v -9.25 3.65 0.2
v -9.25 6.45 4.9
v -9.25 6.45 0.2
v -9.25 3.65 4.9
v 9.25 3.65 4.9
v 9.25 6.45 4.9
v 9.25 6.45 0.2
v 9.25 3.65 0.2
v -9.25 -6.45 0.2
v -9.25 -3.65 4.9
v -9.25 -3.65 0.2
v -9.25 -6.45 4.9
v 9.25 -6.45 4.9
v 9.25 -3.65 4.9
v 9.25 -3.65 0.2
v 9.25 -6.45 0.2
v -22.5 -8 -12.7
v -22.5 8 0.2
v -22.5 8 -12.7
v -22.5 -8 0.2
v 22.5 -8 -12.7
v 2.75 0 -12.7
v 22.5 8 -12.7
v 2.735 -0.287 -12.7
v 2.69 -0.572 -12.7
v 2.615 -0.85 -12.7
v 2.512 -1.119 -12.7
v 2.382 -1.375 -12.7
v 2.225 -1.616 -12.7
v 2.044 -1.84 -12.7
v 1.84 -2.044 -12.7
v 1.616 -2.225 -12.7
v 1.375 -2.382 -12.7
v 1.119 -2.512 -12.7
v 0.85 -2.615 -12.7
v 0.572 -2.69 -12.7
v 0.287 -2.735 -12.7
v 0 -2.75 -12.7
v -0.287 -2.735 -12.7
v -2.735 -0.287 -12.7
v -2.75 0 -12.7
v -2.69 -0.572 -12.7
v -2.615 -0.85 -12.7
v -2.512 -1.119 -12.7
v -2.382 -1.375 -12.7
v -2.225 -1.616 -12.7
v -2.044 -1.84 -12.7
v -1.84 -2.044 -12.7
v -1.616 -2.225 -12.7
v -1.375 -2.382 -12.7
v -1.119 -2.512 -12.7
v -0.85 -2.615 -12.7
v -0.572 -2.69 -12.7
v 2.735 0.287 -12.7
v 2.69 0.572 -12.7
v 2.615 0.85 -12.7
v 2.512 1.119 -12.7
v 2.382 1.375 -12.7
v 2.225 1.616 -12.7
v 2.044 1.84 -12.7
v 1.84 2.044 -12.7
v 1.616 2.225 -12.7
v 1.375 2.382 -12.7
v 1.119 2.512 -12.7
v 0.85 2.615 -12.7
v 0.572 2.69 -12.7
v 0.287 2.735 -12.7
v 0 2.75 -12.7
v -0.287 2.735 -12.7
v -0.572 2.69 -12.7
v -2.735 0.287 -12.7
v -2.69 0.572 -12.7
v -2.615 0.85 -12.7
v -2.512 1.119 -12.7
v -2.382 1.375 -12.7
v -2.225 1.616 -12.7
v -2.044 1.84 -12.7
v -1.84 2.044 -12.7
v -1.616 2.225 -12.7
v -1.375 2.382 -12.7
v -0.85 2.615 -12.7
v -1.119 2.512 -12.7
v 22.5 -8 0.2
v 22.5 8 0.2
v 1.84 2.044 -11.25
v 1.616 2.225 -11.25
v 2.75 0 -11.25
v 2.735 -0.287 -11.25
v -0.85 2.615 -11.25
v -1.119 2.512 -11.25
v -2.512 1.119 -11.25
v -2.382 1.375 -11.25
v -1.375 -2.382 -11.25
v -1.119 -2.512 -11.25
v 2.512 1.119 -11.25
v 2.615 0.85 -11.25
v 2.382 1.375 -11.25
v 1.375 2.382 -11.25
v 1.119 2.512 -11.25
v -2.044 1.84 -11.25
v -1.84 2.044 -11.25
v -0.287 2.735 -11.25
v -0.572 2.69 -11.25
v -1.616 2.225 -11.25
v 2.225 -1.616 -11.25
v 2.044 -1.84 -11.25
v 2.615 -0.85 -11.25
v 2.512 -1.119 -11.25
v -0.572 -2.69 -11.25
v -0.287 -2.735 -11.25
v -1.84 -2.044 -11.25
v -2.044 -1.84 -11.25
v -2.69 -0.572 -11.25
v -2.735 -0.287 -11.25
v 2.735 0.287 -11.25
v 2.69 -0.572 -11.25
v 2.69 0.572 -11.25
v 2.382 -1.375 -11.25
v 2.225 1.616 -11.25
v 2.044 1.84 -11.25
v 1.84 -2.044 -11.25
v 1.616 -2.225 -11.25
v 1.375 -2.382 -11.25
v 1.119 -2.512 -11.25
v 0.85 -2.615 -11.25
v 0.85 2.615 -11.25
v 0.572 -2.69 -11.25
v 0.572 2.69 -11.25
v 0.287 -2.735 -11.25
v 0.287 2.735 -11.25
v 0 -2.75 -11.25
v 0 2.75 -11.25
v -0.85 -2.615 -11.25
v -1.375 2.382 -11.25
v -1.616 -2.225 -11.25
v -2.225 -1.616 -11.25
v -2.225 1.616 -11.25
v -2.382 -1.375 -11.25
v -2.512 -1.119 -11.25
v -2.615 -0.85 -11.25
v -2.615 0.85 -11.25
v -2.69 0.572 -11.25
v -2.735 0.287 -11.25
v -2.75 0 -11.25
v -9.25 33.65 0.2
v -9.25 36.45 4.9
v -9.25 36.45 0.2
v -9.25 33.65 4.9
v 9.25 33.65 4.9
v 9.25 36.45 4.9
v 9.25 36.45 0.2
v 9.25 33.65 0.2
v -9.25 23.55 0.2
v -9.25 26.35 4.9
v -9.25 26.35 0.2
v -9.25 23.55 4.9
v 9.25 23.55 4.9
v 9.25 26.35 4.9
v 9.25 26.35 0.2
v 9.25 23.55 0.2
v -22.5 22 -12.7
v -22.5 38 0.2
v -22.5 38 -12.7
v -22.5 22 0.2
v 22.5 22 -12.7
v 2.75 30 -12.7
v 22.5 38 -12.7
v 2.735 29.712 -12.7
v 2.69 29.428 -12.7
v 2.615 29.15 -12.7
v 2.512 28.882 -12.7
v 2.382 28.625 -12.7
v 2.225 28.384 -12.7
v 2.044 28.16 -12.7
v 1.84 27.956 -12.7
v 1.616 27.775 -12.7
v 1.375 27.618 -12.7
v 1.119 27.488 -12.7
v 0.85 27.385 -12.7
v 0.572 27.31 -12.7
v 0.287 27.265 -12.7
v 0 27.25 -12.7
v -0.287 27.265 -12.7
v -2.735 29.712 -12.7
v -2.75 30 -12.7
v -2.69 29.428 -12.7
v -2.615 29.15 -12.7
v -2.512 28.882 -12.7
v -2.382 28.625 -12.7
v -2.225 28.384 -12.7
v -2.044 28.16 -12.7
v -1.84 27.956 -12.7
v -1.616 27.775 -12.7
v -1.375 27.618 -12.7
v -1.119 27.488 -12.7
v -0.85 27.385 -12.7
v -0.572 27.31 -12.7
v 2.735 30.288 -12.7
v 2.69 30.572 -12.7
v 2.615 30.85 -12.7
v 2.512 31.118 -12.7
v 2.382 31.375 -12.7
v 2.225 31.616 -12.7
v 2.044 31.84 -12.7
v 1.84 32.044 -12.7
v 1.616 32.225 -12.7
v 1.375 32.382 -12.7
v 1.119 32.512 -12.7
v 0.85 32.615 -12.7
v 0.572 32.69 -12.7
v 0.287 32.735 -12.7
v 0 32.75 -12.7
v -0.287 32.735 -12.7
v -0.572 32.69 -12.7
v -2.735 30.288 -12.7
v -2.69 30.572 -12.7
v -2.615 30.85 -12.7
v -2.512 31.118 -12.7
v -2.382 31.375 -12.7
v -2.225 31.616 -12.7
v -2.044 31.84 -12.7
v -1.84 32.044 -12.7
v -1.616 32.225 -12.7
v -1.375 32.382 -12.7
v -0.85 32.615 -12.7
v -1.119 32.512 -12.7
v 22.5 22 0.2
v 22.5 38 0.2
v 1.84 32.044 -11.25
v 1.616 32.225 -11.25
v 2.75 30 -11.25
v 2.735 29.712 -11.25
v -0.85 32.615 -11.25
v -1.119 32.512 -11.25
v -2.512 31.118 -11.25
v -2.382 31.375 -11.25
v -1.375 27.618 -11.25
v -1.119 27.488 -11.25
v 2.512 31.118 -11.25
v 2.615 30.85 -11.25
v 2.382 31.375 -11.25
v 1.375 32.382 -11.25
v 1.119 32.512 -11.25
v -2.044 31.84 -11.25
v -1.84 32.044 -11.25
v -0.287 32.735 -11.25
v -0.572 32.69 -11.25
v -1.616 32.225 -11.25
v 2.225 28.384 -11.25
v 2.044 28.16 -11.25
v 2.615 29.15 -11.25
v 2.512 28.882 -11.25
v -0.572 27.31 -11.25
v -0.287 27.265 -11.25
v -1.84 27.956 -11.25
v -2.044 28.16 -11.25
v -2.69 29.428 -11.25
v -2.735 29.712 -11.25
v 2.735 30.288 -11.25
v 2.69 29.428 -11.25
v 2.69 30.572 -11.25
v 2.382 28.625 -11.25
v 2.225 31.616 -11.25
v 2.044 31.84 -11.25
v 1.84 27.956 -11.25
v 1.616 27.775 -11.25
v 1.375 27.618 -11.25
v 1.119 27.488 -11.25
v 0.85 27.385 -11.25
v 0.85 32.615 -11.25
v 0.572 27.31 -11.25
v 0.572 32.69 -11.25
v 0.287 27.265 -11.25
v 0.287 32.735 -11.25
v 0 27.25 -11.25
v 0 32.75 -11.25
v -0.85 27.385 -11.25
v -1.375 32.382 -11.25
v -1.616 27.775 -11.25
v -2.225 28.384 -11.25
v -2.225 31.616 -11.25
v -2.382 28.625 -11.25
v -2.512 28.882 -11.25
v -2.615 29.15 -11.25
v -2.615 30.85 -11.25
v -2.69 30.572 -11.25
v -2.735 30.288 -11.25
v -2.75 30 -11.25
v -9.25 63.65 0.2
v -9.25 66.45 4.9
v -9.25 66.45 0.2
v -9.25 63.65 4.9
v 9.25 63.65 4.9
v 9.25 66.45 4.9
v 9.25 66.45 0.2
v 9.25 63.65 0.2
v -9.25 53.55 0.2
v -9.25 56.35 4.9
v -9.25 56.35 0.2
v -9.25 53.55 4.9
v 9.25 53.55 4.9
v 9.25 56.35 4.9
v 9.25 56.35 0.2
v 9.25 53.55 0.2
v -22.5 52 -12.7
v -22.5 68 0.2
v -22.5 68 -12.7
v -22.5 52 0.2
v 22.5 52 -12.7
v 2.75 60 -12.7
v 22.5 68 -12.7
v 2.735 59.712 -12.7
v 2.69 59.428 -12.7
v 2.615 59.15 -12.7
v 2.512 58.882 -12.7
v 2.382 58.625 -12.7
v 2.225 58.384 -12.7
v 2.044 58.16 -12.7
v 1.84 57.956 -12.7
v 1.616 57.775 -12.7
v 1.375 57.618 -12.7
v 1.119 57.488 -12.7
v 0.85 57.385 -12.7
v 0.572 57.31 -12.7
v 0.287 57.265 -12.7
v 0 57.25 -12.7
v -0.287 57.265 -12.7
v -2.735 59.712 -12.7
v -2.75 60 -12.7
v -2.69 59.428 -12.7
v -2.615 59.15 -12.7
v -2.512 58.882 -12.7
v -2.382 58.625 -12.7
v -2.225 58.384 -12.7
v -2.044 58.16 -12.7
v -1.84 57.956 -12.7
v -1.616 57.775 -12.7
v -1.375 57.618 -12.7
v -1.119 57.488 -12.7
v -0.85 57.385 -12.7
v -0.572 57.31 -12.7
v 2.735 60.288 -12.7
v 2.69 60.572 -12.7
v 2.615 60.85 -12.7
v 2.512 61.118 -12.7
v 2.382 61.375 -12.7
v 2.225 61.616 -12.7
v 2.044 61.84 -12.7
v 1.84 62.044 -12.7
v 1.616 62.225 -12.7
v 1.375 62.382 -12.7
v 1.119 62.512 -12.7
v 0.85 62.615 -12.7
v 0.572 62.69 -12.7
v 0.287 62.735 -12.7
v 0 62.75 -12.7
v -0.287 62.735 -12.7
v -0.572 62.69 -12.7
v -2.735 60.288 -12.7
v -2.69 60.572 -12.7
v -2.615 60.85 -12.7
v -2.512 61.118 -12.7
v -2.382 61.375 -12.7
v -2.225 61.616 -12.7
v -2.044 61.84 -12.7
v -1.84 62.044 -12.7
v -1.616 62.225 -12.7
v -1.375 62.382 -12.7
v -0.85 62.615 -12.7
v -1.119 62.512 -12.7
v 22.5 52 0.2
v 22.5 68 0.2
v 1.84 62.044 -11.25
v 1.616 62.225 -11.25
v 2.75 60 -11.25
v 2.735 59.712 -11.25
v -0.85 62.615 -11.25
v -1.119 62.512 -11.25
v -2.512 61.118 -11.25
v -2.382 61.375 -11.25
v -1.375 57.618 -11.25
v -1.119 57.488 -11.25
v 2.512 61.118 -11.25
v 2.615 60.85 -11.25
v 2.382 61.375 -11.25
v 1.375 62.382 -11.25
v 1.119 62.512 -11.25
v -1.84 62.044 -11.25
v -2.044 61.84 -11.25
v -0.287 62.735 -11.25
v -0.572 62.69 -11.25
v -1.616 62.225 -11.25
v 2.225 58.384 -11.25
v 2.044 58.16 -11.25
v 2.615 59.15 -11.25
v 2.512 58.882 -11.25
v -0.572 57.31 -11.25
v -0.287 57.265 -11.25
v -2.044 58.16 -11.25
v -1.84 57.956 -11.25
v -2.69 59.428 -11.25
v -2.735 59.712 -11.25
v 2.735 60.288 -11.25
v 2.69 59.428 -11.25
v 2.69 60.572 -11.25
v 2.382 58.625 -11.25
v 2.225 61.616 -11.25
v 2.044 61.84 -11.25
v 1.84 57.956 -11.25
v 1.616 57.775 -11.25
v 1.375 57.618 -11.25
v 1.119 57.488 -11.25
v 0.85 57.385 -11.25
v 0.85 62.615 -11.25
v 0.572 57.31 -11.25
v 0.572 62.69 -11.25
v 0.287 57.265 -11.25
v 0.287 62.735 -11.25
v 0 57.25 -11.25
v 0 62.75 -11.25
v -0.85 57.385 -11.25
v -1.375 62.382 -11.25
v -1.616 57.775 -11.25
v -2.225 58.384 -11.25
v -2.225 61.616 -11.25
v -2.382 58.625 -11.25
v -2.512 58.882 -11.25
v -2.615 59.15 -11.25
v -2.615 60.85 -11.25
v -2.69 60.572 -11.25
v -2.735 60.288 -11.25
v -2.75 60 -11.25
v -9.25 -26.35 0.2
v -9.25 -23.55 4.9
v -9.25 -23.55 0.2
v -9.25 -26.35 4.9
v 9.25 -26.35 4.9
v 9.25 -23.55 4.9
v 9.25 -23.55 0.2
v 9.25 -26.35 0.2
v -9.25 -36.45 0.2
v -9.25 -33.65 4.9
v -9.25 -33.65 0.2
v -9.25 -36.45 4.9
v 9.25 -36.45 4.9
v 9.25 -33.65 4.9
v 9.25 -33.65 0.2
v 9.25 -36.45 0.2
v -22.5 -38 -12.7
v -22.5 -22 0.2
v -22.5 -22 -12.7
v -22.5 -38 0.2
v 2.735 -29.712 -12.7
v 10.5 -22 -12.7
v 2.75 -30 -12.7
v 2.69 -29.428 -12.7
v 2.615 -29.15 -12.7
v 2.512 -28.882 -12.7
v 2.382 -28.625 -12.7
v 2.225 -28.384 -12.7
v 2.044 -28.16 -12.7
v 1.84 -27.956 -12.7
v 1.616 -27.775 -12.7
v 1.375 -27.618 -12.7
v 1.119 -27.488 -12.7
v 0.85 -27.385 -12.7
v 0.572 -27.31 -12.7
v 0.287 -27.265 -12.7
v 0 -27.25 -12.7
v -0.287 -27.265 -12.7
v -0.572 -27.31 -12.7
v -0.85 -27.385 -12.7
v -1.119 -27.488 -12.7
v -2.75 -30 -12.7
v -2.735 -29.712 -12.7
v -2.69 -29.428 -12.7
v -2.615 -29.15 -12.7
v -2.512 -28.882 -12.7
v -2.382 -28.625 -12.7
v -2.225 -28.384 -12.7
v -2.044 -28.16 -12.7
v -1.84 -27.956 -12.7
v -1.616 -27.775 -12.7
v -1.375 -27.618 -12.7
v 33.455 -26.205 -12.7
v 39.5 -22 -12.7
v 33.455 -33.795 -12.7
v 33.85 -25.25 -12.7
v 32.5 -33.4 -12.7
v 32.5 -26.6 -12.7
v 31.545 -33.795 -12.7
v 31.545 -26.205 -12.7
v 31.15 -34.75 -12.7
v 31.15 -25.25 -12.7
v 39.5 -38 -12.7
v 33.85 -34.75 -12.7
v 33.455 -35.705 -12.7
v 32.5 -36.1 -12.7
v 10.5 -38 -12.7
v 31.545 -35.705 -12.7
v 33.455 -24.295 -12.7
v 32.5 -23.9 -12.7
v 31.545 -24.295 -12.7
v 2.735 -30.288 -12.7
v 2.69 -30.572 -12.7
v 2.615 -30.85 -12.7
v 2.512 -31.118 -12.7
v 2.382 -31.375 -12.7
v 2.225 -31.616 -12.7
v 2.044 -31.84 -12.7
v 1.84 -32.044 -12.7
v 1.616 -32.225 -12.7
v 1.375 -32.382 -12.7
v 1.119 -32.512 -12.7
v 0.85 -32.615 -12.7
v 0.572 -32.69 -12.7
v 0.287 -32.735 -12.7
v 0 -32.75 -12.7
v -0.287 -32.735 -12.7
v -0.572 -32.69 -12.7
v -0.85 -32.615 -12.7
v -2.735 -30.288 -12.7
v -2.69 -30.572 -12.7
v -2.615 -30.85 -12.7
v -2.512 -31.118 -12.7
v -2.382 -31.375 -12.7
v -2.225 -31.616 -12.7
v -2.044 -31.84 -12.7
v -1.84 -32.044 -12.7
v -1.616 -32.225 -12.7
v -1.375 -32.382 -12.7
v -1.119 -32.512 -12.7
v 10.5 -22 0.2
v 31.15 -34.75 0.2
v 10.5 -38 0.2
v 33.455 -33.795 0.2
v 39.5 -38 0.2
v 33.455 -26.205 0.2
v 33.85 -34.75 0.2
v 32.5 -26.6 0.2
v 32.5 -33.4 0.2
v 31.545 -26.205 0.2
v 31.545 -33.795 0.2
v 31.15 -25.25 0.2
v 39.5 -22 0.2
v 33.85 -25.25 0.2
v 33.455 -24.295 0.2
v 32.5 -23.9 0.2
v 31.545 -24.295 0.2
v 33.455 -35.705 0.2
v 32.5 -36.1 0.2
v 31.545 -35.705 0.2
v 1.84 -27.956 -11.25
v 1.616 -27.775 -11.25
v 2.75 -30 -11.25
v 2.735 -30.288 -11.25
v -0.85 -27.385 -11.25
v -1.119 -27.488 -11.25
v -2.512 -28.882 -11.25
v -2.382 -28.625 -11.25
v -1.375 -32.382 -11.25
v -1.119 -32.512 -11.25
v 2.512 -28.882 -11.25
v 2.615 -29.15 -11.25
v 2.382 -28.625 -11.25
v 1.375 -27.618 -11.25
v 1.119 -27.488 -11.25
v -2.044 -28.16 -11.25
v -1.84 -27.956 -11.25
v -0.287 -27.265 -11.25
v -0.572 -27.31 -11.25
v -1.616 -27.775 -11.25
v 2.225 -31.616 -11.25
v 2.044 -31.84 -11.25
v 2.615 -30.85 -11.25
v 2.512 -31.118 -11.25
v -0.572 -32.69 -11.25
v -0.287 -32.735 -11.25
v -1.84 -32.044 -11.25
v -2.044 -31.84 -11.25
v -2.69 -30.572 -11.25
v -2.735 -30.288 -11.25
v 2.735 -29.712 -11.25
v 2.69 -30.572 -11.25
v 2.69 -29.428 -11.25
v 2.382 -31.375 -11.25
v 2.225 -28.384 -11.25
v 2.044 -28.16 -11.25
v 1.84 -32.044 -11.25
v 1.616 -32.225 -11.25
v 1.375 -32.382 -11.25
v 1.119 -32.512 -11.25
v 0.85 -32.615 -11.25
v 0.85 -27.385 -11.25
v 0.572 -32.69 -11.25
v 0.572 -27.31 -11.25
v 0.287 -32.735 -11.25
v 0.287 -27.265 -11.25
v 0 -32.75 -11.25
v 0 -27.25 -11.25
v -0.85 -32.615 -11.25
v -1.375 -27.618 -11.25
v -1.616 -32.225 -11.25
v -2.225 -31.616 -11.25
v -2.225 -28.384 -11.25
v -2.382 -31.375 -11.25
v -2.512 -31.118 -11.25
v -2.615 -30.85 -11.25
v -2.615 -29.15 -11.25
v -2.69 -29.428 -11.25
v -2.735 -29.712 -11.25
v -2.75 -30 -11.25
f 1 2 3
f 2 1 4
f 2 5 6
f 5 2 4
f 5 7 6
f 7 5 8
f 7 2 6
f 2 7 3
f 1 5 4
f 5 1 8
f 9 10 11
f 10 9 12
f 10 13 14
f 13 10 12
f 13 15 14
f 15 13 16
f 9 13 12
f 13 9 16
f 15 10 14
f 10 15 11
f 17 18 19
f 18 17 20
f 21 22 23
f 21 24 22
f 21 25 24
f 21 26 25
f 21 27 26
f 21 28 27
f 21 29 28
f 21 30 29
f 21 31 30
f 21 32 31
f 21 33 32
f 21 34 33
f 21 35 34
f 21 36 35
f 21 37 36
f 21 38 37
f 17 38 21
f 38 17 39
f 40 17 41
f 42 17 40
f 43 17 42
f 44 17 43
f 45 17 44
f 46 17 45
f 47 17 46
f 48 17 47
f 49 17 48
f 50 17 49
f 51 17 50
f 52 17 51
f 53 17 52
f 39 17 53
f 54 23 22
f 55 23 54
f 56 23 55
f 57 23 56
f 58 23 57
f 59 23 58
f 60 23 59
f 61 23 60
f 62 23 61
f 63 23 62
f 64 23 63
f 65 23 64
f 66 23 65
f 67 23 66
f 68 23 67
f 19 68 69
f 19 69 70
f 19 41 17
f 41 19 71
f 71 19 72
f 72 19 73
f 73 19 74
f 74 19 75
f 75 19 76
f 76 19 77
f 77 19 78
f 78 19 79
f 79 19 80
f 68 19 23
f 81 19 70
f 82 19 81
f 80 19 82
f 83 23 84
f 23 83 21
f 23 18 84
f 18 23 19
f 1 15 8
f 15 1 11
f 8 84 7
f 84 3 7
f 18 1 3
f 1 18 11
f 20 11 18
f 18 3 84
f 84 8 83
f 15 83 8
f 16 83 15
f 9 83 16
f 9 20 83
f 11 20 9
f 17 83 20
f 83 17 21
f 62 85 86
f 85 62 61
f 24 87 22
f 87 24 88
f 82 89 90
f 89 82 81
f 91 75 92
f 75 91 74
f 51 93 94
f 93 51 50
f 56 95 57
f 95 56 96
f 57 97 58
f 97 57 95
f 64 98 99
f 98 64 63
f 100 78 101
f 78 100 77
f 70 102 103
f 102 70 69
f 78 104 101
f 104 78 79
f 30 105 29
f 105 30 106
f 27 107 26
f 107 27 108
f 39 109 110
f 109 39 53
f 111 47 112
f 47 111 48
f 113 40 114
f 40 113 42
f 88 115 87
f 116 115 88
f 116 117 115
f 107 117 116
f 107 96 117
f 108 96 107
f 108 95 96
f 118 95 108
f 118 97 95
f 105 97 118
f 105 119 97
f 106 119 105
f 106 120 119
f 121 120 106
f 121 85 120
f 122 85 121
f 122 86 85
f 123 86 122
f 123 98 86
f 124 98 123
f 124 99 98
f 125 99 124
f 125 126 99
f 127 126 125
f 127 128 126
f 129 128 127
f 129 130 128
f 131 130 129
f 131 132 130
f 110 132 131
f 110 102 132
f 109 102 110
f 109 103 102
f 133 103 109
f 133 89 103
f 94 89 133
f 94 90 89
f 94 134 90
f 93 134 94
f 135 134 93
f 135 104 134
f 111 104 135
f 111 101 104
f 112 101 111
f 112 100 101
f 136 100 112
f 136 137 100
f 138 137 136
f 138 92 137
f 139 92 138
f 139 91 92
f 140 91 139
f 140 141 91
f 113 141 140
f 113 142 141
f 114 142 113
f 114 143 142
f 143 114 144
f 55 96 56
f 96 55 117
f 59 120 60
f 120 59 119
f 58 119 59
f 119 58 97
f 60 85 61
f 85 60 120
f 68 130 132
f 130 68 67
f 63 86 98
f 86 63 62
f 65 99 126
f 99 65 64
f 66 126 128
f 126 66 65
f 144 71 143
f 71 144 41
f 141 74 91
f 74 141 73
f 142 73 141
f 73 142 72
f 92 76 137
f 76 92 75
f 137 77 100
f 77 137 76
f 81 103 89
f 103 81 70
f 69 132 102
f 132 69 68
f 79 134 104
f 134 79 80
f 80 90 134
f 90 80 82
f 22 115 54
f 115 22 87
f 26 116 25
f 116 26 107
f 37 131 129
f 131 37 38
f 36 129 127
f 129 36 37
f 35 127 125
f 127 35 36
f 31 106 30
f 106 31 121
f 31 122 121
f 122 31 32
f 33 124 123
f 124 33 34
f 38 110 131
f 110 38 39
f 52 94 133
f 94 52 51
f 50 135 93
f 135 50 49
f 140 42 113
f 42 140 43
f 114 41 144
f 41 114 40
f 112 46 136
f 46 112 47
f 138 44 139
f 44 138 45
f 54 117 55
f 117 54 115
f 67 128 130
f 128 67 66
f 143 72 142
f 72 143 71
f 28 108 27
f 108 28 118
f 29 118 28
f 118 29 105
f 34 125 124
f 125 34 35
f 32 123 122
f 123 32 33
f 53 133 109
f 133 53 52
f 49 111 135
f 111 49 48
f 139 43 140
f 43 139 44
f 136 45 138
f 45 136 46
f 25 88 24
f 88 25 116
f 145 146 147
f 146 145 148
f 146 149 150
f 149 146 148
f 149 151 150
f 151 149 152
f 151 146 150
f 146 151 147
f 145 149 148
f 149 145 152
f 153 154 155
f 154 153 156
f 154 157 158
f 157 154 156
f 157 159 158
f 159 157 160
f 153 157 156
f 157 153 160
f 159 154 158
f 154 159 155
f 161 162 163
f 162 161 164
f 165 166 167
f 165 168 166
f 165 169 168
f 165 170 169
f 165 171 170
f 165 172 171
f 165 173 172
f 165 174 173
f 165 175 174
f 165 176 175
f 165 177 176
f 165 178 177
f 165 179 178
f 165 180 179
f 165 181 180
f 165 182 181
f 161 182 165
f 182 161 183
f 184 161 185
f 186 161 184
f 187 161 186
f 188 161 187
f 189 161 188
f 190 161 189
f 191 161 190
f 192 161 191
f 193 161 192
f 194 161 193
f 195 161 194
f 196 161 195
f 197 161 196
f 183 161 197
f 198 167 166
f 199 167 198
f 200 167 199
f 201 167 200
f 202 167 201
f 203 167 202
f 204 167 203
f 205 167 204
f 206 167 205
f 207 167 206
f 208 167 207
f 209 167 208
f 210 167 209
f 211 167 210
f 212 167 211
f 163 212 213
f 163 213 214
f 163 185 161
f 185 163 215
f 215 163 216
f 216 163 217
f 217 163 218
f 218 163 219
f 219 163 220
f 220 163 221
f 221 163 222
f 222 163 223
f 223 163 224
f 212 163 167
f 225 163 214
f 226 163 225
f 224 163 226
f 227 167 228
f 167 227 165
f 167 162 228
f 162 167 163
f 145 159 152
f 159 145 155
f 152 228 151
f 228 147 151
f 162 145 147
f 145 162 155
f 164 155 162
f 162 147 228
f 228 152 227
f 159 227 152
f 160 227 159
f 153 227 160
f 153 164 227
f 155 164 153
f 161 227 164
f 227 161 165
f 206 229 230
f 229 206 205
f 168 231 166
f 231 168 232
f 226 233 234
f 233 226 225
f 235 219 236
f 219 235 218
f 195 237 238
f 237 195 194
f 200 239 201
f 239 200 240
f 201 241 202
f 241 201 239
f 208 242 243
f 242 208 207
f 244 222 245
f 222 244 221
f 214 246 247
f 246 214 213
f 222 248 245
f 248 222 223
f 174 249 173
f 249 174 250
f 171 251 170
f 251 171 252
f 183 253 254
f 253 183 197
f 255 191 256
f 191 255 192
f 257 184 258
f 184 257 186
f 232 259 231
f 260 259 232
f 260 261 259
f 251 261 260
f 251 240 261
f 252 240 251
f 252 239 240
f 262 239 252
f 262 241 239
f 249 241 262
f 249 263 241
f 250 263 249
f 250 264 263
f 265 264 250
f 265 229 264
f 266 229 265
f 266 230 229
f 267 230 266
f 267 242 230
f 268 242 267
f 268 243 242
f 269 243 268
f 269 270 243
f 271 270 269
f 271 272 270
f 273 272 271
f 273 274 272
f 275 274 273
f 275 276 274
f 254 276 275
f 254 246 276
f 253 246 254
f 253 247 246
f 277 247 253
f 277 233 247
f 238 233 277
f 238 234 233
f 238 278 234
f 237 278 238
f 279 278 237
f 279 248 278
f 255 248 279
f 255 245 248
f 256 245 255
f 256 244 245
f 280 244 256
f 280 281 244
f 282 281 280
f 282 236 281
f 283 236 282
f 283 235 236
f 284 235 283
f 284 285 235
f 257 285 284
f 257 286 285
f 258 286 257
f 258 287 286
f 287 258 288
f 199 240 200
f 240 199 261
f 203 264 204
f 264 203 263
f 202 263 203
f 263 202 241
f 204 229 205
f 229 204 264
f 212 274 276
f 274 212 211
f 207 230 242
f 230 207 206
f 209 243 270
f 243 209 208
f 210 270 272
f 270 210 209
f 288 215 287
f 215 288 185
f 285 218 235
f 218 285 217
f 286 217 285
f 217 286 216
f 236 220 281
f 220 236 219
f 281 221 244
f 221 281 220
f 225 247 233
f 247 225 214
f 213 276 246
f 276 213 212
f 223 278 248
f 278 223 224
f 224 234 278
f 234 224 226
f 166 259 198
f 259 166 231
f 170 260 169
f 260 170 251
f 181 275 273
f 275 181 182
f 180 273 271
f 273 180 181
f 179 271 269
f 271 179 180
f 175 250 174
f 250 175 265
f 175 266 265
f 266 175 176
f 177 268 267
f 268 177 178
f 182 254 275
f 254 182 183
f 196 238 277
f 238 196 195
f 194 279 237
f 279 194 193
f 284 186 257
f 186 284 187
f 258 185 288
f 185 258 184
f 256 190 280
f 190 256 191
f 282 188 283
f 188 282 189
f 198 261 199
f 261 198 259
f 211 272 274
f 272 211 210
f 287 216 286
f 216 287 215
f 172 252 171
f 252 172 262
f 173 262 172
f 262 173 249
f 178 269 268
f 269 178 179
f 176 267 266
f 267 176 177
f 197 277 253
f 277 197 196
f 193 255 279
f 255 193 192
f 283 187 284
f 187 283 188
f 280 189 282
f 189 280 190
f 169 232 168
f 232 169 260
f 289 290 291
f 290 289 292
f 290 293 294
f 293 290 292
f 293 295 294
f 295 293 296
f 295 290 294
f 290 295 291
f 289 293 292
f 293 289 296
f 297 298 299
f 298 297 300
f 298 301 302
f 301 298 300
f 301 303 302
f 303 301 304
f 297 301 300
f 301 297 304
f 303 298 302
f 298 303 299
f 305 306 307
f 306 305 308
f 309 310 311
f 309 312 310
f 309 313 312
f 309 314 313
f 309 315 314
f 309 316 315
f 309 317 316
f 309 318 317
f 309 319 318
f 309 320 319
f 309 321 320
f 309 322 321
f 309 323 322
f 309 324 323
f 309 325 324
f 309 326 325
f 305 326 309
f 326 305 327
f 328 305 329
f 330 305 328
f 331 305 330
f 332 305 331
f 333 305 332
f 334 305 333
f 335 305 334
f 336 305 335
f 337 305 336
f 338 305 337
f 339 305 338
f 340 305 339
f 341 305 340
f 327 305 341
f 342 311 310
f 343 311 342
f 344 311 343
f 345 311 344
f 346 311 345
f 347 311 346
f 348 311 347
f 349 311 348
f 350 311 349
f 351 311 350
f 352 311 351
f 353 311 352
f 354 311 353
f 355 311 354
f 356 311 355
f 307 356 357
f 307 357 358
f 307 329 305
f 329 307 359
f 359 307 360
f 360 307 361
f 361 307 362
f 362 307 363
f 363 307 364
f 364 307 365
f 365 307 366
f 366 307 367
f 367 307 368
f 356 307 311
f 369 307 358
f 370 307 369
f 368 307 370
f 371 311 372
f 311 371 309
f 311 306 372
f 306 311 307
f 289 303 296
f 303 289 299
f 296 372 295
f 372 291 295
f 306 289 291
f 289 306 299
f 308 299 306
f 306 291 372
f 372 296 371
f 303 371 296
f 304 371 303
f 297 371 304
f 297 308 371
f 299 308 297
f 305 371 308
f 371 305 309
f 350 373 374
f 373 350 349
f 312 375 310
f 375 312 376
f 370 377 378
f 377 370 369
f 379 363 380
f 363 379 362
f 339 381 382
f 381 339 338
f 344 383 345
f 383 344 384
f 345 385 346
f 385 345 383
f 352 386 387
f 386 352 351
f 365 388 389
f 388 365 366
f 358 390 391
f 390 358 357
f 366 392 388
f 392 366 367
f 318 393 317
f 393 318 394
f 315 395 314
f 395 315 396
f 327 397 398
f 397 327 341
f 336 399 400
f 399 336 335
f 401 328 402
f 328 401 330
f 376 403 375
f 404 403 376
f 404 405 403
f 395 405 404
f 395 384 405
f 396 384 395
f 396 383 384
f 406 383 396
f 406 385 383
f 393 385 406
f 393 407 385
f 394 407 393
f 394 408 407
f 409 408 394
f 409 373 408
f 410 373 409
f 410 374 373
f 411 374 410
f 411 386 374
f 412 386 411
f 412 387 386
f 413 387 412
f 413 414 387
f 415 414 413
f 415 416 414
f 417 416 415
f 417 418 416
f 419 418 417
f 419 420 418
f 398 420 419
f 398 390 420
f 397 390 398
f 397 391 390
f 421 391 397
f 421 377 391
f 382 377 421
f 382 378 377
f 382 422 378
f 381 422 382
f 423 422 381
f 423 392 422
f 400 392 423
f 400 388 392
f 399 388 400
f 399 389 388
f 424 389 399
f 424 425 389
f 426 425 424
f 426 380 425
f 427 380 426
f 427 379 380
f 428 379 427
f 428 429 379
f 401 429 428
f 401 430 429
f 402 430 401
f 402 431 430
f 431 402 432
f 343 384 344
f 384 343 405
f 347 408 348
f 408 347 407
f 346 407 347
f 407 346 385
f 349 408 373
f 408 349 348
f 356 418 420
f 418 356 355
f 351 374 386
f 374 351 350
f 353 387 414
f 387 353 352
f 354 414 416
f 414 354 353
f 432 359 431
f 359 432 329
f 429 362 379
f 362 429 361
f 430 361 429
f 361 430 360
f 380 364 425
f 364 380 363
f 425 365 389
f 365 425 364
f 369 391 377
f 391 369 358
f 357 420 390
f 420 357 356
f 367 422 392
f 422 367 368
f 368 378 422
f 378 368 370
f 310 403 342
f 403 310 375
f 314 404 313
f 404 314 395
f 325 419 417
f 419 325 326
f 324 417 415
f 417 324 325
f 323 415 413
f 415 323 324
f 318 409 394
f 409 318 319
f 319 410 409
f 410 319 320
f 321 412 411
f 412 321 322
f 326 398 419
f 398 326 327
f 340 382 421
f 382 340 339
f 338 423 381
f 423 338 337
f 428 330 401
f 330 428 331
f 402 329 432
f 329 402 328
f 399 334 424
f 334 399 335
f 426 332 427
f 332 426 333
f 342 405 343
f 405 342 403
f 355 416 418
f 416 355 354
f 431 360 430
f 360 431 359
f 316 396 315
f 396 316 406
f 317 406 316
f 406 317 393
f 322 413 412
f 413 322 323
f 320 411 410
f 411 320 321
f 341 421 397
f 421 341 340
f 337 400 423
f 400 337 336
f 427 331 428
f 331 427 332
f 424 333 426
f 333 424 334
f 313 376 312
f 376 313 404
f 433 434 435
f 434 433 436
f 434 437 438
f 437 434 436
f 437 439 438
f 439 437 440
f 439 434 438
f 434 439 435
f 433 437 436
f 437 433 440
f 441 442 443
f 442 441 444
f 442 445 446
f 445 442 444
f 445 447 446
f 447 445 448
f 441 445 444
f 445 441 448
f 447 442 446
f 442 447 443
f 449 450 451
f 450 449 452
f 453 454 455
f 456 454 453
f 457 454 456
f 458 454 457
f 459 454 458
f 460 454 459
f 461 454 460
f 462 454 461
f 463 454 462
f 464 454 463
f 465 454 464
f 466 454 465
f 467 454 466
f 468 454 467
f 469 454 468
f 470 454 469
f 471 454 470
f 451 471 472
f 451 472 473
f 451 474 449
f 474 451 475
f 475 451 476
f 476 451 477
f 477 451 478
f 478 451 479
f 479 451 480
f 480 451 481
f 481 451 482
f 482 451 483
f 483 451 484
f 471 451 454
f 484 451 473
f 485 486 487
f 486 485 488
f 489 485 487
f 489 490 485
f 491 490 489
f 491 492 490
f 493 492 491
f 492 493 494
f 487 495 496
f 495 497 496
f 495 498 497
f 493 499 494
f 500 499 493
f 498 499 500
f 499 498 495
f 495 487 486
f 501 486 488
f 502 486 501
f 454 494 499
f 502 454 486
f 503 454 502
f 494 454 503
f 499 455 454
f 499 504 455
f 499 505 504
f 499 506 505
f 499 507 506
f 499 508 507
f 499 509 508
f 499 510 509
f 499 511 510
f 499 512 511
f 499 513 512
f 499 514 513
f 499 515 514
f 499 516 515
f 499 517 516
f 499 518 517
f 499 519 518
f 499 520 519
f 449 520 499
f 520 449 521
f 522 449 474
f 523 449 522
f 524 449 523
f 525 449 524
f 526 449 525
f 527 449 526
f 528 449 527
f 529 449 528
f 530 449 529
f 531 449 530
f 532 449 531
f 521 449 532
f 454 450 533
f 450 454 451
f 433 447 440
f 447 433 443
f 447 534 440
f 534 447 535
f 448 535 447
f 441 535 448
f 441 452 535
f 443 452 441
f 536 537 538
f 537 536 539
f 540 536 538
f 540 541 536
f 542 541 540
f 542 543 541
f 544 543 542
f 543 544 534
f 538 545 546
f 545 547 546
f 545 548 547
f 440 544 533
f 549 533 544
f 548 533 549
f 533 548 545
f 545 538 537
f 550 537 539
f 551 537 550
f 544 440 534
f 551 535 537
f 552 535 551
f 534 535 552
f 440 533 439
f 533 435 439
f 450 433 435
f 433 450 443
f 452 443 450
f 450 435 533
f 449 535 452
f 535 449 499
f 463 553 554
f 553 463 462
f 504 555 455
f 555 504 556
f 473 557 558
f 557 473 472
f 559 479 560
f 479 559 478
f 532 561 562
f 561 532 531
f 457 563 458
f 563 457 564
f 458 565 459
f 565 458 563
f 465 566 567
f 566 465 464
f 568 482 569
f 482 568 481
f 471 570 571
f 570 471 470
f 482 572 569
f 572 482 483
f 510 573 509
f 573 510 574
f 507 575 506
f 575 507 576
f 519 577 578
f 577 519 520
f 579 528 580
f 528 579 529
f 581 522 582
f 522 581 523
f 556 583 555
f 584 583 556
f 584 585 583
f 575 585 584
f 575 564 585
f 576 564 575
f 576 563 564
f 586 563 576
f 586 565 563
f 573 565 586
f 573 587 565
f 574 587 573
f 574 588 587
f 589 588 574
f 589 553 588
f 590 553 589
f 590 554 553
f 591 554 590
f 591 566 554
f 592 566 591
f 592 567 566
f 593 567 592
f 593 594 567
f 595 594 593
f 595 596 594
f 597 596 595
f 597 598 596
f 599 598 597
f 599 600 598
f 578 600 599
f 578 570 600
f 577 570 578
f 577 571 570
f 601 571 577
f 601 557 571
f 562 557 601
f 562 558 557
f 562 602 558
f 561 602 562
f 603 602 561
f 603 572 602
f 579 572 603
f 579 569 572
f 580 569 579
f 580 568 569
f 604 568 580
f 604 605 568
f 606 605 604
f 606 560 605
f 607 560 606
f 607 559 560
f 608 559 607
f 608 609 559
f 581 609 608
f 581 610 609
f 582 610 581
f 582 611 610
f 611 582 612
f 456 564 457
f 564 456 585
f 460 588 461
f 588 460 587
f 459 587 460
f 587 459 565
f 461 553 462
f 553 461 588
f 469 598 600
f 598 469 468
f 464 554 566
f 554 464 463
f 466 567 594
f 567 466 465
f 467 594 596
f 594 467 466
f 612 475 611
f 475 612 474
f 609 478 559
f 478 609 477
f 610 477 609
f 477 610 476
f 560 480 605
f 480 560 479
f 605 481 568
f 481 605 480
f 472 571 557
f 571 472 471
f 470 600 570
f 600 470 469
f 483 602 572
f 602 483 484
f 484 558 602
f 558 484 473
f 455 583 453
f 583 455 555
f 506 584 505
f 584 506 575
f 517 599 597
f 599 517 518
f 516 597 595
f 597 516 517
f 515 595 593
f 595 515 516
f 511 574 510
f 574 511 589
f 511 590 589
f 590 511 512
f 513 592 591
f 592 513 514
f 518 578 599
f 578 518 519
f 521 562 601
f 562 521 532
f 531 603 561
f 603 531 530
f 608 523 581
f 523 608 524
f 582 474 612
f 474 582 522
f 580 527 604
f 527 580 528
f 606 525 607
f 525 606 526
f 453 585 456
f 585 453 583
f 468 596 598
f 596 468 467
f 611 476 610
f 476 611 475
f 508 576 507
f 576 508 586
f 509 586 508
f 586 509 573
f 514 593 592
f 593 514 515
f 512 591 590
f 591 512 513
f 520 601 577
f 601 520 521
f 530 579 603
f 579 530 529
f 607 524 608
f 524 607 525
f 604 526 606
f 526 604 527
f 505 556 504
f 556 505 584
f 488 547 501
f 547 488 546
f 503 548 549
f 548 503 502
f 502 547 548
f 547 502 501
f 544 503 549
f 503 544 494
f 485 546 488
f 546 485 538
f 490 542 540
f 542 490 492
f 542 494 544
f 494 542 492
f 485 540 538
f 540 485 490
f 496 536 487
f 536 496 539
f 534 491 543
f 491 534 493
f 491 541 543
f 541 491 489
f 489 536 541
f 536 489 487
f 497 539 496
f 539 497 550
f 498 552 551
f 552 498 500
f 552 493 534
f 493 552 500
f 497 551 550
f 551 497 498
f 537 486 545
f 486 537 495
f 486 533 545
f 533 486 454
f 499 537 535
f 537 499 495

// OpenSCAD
// file: inc/configuration.scad
// Copyright (C) 2012 Joseph Lenox
// HexyDelta 

//==========================================================================//
// Configuration file for HexyDelta OpenSCAD files                          //
// Scroll past the definition section to change basic and advanced settings //
//==========================================================================//

//====================//
// Definition Section //
//====================//

// Print the hole_calibration.scad object to dial in the next 6 settings
// Google found http://www.fairburyfastener.com/xdims_metric_nuts.htm
M8=8.4;// diameter of M8 threaded rod
M5=5.3;// diameter of M5 threaded rod
M3=3.4;// diameter of M3 threaded rod
M2_5=2.7; // diameter of M2.5 threaded rod
M8nut=13;// diameter of M8 nut flat to flat
M5nut=8;// diameter of M5 nut flat to flat
M3nut=5.6;// diameter of M3 nut flat to flat

M8nutThickness=6.8;// thickness of a standard M8 nut(nylock is 8mm)
M5nutThickness=4.7;// thickness of a standard M5 nut(nylock is 5mm)
M3nutThickness=2.4;// thickness of a standard M3 nut

// Acme Linear Screw and Nut
ACME14=6.5;// diameter of 1/4 inch ACME threaded rod in mm
ACME14nut=12.8;// diameter of ACME 1/4 inch nut flat to flat in mm
ACME14nutThickness=6.5;// thickness of ACME 1/4 inch nut in mm

//rotary bearings
// format is IDxODxL
xx623=[3, 10, 4];
MF204=[4, 10, 4];
MF126=[6, 12, 4];
rotaryBearing=xx623;// for readability(can be changed if other bearings are used


//=======================//
//  Basic Config Items   //
//=======================//

count=6;
//=======================//
// Advanced Config Items //
//=======================//
$fn=8;		// default resolution for parts, decrease if part compiling or stl/gcode is unmanageable
plate_dia = 25.4*(8.5 + (1.5/12));
inset_hole=3.3+1.5;
inset_hole_r = (plate_dia / 2 ) - inset_hole;
base_thickness=5;
height=40 + base_thickness;
track=[17.4,24.5, height];
center=25;
mounting_screw_dia = 3.4;
plate_length=55;

tolerance=0.2;
// main file
module shim(endstop = false, backing_hole=M5) {
    plugs = 4.9;
    plug_diameter = [track[2], track[1]-8.5, track[0]-4.5];
    for (i=[(7+3.1)/2, -(7+3.1)/2])
        translate([0,i,plugs/2])cube([18.5, 2.8,plugs], center=true);
    translate([0,0,-(12.5)/2])
        mirror([0,0,1])
        difference() {
            cube(plug_diameter,center=true);
            translate([0,0,5])
                #cylinder(d=M5+tolerance, h=10, $fn=60);
        }
    if (endstop) {
        translate([25,0,-(12.5)/2]) difference()
        { 
            cube([29,plug_diameter[1], plug_diameter[2]], center=true);
            for (j = [7.5])
            for (i=[9.5/2, -9.5/2]) {
                #translate([j,i,-10]) cylinder(d=M2_5, h=20);
            }
        }
    }
}

for (y = [0:2]) translate([0,30*y,0])shim();
translate([0,-30,0])shim(endstop=true);

include<inc/configuration.scad>
